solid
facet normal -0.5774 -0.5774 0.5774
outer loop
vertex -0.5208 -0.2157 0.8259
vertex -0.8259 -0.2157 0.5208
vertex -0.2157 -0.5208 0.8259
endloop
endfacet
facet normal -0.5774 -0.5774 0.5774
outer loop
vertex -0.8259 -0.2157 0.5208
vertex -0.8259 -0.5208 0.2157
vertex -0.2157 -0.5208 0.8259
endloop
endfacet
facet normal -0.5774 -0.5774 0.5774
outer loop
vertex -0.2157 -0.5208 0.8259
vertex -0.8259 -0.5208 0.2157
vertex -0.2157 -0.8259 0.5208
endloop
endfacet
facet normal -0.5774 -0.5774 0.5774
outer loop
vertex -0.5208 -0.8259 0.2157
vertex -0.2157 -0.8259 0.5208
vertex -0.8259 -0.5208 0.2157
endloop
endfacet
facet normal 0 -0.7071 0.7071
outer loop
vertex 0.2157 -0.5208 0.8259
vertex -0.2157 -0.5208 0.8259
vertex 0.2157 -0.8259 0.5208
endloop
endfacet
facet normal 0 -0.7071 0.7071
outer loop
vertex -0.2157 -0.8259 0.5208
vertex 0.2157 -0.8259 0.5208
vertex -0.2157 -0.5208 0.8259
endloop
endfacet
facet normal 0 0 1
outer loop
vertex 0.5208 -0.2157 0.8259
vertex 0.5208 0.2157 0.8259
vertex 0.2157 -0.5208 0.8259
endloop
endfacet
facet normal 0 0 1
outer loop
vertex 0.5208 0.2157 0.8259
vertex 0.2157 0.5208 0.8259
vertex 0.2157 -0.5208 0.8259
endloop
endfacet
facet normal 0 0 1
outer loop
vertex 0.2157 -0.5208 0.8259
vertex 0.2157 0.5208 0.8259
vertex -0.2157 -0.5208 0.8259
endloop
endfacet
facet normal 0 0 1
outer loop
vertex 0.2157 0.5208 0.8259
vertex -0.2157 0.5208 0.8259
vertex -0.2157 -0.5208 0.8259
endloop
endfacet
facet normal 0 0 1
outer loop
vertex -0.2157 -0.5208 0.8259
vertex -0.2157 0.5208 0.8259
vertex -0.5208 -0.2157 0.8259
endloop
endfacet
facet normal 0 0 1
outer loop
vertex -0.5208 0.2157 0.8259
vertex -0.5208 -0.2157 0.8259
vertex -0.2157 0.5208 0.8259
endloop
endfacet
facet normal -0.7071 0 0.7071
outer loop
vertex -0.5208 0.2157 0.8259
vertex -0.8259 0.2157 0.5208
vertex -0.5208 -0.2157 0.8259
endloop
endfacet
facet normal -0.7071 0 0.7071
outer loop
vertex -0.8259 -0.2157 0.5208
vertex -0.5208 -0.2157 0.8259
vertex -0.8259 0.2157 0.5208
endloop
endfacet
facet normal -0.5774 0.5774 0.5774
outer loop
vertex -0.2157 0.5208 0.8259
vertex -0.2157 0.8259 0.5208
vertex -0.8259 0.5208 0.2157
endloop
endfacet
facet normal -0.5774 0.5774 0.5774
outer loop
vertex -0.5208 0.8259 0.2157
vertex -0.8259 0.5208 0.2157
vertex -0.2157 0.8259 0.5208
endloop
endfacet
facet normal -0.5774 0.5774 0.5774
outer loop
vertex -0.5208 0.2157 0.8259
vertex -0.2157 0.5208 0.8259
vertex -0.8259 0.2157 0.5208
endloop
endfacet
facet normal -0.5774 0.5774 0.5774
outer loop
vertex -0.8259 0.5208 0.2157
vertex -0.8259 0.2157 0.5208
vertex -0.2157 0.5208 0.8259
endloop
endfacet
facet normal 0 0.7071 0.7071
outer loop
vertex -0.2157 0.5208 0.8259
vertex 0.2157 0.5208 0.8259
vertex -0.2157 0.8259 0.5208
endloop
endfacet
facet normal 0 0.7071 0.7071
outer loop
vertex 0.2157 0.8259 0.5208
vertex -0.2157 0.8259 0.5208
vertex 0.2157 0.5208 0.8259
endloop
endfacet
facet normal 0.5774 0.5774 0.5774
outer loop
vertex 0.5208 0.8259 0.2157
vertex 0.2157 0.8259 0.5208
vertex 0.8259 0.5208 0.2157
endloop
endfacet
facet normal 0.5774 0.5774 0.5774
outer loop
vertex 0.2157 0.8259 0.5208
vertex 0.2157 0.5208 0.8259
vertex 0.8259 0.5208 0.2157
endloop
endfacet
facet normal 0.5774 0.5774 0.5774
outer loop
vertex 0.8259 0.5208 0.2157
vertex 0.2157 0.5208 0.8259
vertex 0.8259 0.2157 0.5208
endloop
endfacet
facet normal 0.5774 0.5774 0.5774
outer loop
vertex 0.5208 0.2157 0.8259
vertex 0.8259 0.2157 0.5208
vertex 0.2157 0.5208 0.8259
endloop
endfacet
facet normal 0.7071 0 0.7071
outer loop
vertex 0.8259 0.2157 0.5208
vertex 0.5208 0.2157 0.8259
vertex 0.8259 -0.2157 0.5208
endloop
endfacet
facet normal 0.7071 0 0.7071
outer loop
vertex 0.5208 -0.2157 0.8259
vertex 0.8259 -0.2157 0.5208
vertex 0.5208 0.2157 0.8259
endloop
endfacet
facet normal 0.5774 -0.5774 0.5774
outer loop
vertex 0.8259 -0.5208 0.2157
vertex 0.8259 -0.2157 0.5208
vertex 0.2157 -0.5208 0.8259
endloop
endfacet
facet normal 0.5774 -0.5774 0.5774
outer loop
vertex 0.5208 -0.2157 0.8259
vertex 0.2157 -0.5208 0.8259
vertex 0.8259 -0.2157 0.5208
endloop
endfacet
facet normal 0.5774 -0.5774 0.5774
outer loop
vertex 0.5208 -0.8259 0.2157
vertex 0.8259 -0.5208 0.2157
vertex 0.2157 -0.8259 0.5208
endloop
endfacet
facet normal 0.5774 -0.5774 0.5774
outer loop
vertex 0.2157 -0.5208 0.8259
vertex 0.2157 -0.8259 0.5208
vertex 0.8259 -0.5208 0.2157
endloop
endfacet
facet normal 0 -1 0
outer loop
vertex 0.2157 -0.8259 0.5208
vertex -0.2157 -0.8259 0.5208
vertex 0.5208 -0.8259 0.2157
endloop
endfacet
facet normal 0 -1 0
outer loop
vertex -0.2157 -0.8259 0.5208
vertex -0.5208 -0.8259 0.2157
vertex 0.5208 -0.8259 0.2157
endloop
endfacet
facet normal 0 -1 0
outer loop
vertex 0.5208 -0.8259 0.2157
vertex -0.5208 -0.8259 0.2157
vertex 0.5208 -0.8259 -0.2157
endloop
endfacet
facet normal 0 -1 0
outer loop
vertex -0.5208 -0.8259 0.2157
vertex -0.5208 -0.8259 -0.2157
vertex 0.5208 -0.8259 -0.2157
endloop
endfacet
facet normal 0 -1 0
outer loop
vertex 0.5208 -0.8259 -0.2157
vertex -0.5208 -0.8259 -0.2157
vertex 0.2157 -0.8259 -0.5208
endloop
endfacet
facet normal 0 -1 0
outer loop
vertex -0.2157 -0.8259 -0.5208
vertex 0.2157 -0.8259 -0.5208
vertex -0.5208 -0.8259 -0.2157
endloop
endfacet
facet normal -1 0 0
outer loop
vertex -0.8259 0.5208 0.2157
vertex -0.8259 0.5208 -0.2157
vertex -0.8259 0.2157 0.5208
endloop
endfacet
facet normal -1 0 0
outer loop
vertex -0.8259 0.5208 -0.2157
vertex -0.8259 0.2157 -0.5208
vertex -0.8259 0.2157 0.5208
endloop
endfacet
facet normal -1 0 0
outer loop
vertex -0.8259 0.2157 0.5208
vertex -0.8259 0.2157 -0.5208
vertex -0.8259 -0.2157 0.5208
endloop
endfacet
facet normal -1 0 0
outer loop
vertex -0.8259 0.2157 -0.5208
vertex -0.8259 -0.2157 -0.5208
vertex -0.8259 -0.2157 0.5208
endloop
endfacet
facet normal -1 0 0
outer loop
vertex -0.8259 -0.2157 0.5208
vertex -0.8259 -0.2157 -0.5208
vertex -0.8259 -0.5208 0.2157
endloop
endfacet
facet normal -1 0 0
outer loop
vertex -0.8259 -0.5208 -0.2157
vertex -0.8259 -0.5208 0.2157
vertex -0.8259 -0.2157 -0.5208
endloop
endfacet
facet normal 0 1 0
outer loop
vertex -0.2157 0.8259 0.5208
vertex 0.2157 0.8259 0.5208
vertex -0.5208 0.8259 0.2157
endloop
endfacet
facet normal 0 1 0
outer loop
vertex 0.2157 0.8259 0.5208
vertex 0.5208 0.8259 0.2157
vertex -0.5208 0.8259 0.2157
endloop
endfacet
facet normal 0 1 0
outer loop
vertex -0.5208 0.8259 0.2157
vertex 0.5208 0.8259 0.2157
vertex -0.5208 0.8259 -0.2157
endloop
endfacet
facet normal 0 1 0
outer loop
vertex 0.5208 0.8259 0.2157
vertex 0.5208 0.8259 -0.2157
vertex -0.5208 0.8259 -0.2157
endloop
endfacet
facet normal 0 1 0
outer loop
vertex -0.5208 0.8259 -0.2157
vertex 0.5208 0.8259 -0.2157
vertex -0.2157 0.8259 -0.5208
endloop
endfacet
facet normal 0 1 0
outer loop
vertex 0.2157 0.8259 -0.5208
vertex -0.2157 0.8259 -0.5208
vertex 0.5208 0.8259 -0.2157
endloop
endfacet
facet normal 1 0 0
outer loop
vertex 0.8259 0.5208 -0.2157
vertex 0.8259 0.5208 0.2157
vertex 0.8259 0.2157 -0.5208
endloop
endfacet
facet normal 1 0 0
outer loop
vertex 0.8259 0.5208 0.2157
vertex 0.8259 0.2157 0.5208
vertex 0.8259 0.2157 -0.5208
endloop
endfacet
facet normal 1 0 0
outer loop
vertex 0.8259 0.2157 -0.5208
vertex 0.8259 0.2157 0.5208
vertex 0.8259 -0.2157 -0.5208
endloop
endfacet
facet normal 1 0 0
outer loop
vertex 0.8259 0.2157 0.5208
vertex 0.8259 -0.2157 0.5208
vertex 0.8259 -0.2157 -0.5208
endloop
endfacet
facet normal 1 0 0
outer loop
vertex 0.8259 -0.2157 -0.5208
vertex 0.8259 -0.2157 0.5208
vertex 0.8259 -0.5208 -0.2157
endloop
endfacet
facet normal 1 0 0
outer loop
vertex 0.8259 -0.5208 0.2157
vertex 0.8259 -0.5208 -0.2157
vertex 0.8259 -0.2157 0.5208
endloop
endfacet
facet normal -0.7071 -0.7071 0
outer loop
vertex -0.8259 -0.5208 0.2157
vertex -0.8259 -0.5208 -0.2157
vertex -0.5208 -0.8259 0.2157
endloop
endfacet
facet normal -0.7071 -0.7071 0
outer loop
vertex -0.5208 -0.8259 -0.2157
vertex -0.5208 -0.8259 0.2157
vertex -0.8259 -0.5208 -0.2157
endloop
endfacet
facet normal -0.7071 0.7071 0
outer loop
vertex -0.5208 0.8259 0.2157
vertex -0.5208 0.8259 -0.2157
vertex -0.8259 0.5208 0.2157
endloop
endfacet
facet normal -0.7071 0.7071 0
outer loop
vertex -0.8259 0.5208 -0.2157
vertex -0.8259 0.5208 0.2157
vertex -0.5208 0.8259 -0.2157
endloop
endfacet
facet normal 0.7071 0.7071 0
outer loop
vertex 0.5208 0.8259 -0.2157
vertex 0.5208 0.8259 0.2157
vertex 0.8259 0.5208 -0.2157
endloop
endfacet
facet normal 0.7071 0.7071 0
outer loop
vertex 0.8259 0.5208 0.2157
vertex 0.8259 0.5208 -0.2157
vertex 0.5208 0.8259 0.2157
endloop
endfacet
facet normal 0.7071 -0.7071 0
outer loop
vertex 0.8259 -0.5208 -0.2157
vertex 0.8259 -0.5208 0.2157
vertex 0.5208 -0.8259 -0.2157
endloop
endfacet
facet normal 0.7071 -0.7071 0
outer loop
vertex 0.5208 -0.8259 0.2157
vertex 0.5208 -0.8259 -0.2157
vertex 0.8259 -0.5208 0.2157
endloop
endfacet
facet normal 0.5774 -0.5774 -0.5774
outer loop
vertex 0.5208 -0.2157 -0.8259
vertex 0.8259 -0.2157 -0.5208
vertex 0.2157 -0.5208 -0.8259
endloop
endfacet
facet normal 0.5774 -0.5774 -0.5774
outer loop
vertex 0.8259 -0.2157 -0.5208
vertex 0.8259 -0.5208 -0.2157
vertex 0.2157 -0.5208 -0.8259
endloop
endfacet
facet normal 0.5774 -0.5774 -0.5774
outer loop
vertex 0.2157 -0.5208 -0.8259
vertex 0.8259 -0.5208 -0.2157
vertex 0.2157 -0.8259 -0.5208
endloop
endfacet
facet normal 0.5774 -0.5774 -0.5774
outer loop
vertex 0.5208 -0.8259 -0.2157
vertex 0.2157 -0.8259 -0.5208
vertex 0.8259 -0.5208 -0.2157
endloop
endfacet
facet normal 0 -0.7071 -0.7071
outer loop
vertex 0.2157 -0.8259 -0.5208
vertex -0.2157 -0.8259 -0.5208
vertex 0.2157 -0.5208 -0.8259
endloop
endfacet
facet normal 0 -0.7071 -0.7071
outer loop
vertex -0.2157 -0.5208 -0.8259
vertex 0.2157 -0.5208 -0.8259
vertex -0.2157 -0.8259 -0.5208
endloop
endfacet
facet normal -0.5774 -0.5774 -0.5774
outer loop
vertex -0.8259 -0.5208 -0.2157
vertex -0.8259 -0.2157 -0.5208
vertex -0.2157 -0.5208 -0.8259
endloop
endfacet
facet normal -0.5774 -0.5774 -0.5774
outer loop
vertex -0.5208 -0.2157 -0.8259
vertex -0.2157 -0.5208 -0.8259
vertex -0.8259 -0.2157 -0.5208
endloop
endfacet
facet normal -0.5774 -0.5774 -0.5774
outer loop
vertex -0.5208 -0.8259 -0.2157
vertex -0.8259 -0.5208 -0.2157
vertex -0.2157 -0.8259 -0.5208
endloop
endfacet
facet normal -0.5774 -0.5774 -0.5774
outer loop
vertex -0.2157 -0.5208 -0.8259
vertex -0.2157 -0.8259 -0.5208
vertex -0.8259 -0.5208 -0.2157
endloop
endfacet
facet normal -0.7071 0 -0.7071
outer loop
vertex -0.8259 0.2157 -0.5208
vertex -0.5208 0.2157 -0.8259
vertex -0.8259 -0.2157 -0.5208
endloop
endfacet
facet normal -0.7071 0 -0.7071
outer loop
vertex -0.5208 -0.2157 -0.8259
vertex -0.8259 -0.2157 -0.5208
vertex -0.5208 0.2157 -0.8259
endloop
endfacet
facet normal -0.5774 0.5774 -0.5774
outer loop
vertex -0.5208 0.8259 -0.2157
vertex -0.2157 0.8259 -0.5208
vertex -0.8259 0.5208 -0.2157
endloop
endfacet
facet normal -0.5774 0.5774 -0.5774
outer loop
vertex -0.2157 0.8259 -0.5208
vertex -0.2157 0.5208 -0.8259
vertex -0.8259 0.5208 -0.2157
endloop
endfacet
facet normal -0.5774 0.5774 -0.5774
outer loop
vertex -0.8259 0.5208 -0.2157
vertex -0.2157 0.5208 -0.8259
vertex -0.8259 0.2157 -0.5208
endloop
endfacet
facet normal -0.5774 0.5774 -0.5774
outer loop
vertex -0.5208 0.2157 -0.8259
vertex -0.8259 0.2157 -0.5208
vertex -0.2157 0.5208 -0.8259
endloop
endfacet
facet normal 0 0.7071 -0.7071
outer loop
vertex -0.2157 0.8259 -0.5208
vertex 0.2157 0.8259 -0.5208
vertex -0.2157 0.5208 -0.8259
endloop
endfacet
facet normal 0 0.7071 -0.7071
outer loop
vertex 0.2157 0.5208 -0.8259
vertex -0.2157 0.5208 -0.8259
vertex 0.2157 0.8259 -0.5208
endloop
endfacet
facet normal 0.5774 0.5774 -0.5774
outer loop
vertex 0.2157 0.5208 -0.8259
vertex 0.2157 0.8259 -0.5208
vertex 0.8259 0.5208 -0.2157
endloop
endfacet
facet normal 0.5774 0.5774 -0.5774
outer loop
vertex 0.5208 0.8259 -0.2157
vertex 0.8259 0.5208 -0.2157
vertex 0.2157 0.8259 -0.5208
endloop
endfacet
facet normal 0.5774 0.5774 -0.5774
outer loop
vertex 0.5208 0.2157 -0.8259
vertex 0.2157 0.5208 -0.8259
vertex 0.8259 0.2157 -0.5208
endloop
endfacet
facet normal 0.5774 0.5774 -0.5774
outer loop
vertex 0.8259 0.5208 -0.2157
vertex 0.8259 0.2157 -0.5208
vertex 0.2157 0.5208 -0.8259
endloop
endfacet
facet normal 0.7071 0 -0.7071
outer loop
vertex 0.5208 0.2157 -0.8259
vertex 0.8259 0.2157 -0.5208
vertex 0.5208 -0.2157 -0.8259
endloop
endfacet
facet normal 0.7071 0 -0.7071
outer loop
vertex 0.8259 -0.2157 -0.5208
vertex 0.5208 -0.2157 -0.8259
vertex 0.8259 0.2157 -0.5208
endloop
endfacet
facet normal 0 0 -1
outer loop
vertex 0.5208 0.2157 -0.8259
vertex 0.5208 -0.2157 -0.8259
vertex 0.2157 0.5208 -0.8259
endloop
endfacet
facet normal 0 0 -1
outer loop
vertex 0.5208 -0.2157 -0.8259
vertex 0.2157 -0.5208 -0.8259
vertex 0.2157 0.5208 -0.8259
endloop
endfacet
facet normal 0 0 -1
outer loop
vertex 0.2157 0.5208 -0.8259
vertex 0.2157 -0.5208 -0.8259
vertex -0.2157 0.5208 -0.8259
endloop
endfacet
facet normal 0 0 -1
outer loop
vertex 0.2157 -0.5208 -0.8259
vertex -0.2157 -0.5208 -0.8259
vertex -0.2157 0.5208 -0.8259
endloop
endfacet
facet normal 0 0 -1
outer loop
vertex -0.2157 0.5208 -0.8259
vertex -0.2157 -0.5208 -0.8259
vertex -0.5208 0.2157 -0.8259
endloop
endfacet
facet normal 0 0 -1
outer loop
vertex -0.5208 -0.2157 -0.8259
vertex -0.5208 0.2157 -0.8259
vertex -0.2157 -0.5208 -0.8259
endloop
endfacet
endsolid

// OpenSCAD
polyhedron( points = [[-0.215739405205292, -0.520840997885448, 0.825942590790524], [-0.520840998041117, -0.21573940500853, 0.825942590790524], [-0.520840997983001, 0.215739405417047, 0.825942590790524], [-0.215739405158524, 0.520840998173037, 0.825942590790524], [0.215739405267054, 0.520840998134291, 0.825942590790524], [0.52084099803674, 0.215739405323511, 0.825942590790524], [0.520840998017366, -0.215739405102066, 0.825942590790524], [0.215739405220286, -0.520840997885448, 0.825942590790524], [-0.21573940518592, -0.825942590802547, 0.520840997994879], [-0.825942590797657, -0.21573940511317, 0.520840997990328], [-0.825942590729074, 0.215739405438772, 0.520840997956136], [-0.215739405056397, 0.825942590934926, 0.520840997995678], [0.21573940527508, 0.825942590880365, 0.520840997956135], [0.825942590798629, 0.215739405235084, 0.520840997995678], [0.825942590763441, -0.215739405096392, 0.520840997956135], [0.215739405173518, -0.825942590783175, 0.520840998014251], [-0.520840998070192, -0.825942590746631, 0.215739405227512], [-0.825942590838199, -0.520840997934174, 0.215739405230869], [-0.825942590642765, 0.520840998240206, 0.21573940510593], [-0.520840997794563, 0.825942590972465, 0.21573940515338], [0.520840998076514, 0.825942590807752, 0.21573940510593], [0.825942590822472, 0.52084099797325, 0.21573940515338], [0.825942590704527, -0.520840997897826, 0.21573940510593], [0.52084099788372, -0.825942590657483, 0.21573940515338], [0.520840997863747, -0.825942591144459, -0.215739405451975], [0.21573940498555, -0.825942591088543, -0.520840998158194], [-0.215739405442825, -0.825942590948861, -0.520840998051865], [-0.520840998162942, -0.825942590807237, -0.215739405242807], [-0.825942590928827, -0.520840997996898, -0.215739405197709], [-0.825942590445182, -0.215739405015523, -0.520840998079786], [-0.825942590442024, 0.215739405412853, -0.520840998090607], [-0.825942590523863, 0.520840998215806, -0.215739405364385], [-0.520840997677782, 0.82594259094595, -0.215739405275193], [-0.215739405179216, 0.825942590577105, -0.520840998079786], [0.215739405249161, 0.825942590593316, -0.520840998090607], [0.520840998052113, 0.825942590688854, -0.215739405364385], [0.825942590795953, 0.520840997856466, -0.215739405275193], [0.825942590440808, 0.215739405357904, -0.520840998079786], [0.825942590476387, -0.215739405070473, -0.520840998090607], [0.825942590585625, -0.520840997873428, -0.215739405364385], [0.520840997840538, -0.215739405595991, -0.825942591078271], [0.520840996937224, 0.215739405324974, -0.825942589881341], [0.215739405385681, 0.520840997034188, -0.825942589947702], [-0.215739405159985, 0.520840997073517, -0.825942589881341], [-0.520840997404681, 0.215739405337582, -0.825942590749636], [-0.52084099732331, -0.215739405009991, -0.825942590823345], [-0.215739405452512, -0.520840998180008, -0.825942590839862], [0.215739404993716, -0.520840998304918, -0.825942590960961]], faces = [[0, 1, 9, 17, 16, 8], [0, 8, 15, 7], [0, 7, 6, 5, 4, 3, 2, 1], [1, 2, 10, 9], [2, 3, 11, 19, 18, 10], [3, 4, 12, 11], [4, 5, 13, 21, 20, 12], [5, 6, 14, 13], [6, 7, 15, 23, 22, 14], [8, 16, 27, 26, 25, 24, 23, 15], [9, 10, 18, 31, 30, 29, 28, 17], [11, 12, 20, 35, 34, 33, 32, 19], [13, 14, 22, 39, 38, 37, 36, 21], [16, 17, 28, 27], [18, 19, 32, 31], [20, 21, 36, 35], [22, 23, 24, 39], [24, 25, 47, 40, 38, 39], [25, 26, 46, 47], [26, 27, 28, 29, 45, 46], [29, 30, 44, 45], [30, 31, 32, 33, 43, 44], [33, 34, 42, 43], [34, 35, 36, 37, 41, 42], [37, 38, 40, 41], [40, 47, 46, 45, 44, 43, 42, 41]]);
